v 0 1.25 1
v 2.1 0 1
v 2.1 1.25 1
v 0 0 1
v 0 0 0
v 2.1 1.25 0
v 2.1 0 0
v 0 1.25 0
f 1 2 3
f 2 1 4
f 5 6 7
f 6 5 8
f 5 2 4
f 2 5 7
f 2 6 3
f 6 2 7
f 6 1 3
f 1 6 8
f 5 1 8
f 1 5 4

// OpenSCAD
/* Warning, this is a very basic generator with a lot of approximation 
input data : [SC70, BZX, 2.10x1.25mm, 5, , E, C04-00061E]
generated by com.zoubworld.electronics.cad.model3d.Basic
Date : Sun Feb 15 10:50:48 CET 2026
*/

//body
color("black")
translate([0,0,0])
cube([2.1,1.25,1.0], center=false);
